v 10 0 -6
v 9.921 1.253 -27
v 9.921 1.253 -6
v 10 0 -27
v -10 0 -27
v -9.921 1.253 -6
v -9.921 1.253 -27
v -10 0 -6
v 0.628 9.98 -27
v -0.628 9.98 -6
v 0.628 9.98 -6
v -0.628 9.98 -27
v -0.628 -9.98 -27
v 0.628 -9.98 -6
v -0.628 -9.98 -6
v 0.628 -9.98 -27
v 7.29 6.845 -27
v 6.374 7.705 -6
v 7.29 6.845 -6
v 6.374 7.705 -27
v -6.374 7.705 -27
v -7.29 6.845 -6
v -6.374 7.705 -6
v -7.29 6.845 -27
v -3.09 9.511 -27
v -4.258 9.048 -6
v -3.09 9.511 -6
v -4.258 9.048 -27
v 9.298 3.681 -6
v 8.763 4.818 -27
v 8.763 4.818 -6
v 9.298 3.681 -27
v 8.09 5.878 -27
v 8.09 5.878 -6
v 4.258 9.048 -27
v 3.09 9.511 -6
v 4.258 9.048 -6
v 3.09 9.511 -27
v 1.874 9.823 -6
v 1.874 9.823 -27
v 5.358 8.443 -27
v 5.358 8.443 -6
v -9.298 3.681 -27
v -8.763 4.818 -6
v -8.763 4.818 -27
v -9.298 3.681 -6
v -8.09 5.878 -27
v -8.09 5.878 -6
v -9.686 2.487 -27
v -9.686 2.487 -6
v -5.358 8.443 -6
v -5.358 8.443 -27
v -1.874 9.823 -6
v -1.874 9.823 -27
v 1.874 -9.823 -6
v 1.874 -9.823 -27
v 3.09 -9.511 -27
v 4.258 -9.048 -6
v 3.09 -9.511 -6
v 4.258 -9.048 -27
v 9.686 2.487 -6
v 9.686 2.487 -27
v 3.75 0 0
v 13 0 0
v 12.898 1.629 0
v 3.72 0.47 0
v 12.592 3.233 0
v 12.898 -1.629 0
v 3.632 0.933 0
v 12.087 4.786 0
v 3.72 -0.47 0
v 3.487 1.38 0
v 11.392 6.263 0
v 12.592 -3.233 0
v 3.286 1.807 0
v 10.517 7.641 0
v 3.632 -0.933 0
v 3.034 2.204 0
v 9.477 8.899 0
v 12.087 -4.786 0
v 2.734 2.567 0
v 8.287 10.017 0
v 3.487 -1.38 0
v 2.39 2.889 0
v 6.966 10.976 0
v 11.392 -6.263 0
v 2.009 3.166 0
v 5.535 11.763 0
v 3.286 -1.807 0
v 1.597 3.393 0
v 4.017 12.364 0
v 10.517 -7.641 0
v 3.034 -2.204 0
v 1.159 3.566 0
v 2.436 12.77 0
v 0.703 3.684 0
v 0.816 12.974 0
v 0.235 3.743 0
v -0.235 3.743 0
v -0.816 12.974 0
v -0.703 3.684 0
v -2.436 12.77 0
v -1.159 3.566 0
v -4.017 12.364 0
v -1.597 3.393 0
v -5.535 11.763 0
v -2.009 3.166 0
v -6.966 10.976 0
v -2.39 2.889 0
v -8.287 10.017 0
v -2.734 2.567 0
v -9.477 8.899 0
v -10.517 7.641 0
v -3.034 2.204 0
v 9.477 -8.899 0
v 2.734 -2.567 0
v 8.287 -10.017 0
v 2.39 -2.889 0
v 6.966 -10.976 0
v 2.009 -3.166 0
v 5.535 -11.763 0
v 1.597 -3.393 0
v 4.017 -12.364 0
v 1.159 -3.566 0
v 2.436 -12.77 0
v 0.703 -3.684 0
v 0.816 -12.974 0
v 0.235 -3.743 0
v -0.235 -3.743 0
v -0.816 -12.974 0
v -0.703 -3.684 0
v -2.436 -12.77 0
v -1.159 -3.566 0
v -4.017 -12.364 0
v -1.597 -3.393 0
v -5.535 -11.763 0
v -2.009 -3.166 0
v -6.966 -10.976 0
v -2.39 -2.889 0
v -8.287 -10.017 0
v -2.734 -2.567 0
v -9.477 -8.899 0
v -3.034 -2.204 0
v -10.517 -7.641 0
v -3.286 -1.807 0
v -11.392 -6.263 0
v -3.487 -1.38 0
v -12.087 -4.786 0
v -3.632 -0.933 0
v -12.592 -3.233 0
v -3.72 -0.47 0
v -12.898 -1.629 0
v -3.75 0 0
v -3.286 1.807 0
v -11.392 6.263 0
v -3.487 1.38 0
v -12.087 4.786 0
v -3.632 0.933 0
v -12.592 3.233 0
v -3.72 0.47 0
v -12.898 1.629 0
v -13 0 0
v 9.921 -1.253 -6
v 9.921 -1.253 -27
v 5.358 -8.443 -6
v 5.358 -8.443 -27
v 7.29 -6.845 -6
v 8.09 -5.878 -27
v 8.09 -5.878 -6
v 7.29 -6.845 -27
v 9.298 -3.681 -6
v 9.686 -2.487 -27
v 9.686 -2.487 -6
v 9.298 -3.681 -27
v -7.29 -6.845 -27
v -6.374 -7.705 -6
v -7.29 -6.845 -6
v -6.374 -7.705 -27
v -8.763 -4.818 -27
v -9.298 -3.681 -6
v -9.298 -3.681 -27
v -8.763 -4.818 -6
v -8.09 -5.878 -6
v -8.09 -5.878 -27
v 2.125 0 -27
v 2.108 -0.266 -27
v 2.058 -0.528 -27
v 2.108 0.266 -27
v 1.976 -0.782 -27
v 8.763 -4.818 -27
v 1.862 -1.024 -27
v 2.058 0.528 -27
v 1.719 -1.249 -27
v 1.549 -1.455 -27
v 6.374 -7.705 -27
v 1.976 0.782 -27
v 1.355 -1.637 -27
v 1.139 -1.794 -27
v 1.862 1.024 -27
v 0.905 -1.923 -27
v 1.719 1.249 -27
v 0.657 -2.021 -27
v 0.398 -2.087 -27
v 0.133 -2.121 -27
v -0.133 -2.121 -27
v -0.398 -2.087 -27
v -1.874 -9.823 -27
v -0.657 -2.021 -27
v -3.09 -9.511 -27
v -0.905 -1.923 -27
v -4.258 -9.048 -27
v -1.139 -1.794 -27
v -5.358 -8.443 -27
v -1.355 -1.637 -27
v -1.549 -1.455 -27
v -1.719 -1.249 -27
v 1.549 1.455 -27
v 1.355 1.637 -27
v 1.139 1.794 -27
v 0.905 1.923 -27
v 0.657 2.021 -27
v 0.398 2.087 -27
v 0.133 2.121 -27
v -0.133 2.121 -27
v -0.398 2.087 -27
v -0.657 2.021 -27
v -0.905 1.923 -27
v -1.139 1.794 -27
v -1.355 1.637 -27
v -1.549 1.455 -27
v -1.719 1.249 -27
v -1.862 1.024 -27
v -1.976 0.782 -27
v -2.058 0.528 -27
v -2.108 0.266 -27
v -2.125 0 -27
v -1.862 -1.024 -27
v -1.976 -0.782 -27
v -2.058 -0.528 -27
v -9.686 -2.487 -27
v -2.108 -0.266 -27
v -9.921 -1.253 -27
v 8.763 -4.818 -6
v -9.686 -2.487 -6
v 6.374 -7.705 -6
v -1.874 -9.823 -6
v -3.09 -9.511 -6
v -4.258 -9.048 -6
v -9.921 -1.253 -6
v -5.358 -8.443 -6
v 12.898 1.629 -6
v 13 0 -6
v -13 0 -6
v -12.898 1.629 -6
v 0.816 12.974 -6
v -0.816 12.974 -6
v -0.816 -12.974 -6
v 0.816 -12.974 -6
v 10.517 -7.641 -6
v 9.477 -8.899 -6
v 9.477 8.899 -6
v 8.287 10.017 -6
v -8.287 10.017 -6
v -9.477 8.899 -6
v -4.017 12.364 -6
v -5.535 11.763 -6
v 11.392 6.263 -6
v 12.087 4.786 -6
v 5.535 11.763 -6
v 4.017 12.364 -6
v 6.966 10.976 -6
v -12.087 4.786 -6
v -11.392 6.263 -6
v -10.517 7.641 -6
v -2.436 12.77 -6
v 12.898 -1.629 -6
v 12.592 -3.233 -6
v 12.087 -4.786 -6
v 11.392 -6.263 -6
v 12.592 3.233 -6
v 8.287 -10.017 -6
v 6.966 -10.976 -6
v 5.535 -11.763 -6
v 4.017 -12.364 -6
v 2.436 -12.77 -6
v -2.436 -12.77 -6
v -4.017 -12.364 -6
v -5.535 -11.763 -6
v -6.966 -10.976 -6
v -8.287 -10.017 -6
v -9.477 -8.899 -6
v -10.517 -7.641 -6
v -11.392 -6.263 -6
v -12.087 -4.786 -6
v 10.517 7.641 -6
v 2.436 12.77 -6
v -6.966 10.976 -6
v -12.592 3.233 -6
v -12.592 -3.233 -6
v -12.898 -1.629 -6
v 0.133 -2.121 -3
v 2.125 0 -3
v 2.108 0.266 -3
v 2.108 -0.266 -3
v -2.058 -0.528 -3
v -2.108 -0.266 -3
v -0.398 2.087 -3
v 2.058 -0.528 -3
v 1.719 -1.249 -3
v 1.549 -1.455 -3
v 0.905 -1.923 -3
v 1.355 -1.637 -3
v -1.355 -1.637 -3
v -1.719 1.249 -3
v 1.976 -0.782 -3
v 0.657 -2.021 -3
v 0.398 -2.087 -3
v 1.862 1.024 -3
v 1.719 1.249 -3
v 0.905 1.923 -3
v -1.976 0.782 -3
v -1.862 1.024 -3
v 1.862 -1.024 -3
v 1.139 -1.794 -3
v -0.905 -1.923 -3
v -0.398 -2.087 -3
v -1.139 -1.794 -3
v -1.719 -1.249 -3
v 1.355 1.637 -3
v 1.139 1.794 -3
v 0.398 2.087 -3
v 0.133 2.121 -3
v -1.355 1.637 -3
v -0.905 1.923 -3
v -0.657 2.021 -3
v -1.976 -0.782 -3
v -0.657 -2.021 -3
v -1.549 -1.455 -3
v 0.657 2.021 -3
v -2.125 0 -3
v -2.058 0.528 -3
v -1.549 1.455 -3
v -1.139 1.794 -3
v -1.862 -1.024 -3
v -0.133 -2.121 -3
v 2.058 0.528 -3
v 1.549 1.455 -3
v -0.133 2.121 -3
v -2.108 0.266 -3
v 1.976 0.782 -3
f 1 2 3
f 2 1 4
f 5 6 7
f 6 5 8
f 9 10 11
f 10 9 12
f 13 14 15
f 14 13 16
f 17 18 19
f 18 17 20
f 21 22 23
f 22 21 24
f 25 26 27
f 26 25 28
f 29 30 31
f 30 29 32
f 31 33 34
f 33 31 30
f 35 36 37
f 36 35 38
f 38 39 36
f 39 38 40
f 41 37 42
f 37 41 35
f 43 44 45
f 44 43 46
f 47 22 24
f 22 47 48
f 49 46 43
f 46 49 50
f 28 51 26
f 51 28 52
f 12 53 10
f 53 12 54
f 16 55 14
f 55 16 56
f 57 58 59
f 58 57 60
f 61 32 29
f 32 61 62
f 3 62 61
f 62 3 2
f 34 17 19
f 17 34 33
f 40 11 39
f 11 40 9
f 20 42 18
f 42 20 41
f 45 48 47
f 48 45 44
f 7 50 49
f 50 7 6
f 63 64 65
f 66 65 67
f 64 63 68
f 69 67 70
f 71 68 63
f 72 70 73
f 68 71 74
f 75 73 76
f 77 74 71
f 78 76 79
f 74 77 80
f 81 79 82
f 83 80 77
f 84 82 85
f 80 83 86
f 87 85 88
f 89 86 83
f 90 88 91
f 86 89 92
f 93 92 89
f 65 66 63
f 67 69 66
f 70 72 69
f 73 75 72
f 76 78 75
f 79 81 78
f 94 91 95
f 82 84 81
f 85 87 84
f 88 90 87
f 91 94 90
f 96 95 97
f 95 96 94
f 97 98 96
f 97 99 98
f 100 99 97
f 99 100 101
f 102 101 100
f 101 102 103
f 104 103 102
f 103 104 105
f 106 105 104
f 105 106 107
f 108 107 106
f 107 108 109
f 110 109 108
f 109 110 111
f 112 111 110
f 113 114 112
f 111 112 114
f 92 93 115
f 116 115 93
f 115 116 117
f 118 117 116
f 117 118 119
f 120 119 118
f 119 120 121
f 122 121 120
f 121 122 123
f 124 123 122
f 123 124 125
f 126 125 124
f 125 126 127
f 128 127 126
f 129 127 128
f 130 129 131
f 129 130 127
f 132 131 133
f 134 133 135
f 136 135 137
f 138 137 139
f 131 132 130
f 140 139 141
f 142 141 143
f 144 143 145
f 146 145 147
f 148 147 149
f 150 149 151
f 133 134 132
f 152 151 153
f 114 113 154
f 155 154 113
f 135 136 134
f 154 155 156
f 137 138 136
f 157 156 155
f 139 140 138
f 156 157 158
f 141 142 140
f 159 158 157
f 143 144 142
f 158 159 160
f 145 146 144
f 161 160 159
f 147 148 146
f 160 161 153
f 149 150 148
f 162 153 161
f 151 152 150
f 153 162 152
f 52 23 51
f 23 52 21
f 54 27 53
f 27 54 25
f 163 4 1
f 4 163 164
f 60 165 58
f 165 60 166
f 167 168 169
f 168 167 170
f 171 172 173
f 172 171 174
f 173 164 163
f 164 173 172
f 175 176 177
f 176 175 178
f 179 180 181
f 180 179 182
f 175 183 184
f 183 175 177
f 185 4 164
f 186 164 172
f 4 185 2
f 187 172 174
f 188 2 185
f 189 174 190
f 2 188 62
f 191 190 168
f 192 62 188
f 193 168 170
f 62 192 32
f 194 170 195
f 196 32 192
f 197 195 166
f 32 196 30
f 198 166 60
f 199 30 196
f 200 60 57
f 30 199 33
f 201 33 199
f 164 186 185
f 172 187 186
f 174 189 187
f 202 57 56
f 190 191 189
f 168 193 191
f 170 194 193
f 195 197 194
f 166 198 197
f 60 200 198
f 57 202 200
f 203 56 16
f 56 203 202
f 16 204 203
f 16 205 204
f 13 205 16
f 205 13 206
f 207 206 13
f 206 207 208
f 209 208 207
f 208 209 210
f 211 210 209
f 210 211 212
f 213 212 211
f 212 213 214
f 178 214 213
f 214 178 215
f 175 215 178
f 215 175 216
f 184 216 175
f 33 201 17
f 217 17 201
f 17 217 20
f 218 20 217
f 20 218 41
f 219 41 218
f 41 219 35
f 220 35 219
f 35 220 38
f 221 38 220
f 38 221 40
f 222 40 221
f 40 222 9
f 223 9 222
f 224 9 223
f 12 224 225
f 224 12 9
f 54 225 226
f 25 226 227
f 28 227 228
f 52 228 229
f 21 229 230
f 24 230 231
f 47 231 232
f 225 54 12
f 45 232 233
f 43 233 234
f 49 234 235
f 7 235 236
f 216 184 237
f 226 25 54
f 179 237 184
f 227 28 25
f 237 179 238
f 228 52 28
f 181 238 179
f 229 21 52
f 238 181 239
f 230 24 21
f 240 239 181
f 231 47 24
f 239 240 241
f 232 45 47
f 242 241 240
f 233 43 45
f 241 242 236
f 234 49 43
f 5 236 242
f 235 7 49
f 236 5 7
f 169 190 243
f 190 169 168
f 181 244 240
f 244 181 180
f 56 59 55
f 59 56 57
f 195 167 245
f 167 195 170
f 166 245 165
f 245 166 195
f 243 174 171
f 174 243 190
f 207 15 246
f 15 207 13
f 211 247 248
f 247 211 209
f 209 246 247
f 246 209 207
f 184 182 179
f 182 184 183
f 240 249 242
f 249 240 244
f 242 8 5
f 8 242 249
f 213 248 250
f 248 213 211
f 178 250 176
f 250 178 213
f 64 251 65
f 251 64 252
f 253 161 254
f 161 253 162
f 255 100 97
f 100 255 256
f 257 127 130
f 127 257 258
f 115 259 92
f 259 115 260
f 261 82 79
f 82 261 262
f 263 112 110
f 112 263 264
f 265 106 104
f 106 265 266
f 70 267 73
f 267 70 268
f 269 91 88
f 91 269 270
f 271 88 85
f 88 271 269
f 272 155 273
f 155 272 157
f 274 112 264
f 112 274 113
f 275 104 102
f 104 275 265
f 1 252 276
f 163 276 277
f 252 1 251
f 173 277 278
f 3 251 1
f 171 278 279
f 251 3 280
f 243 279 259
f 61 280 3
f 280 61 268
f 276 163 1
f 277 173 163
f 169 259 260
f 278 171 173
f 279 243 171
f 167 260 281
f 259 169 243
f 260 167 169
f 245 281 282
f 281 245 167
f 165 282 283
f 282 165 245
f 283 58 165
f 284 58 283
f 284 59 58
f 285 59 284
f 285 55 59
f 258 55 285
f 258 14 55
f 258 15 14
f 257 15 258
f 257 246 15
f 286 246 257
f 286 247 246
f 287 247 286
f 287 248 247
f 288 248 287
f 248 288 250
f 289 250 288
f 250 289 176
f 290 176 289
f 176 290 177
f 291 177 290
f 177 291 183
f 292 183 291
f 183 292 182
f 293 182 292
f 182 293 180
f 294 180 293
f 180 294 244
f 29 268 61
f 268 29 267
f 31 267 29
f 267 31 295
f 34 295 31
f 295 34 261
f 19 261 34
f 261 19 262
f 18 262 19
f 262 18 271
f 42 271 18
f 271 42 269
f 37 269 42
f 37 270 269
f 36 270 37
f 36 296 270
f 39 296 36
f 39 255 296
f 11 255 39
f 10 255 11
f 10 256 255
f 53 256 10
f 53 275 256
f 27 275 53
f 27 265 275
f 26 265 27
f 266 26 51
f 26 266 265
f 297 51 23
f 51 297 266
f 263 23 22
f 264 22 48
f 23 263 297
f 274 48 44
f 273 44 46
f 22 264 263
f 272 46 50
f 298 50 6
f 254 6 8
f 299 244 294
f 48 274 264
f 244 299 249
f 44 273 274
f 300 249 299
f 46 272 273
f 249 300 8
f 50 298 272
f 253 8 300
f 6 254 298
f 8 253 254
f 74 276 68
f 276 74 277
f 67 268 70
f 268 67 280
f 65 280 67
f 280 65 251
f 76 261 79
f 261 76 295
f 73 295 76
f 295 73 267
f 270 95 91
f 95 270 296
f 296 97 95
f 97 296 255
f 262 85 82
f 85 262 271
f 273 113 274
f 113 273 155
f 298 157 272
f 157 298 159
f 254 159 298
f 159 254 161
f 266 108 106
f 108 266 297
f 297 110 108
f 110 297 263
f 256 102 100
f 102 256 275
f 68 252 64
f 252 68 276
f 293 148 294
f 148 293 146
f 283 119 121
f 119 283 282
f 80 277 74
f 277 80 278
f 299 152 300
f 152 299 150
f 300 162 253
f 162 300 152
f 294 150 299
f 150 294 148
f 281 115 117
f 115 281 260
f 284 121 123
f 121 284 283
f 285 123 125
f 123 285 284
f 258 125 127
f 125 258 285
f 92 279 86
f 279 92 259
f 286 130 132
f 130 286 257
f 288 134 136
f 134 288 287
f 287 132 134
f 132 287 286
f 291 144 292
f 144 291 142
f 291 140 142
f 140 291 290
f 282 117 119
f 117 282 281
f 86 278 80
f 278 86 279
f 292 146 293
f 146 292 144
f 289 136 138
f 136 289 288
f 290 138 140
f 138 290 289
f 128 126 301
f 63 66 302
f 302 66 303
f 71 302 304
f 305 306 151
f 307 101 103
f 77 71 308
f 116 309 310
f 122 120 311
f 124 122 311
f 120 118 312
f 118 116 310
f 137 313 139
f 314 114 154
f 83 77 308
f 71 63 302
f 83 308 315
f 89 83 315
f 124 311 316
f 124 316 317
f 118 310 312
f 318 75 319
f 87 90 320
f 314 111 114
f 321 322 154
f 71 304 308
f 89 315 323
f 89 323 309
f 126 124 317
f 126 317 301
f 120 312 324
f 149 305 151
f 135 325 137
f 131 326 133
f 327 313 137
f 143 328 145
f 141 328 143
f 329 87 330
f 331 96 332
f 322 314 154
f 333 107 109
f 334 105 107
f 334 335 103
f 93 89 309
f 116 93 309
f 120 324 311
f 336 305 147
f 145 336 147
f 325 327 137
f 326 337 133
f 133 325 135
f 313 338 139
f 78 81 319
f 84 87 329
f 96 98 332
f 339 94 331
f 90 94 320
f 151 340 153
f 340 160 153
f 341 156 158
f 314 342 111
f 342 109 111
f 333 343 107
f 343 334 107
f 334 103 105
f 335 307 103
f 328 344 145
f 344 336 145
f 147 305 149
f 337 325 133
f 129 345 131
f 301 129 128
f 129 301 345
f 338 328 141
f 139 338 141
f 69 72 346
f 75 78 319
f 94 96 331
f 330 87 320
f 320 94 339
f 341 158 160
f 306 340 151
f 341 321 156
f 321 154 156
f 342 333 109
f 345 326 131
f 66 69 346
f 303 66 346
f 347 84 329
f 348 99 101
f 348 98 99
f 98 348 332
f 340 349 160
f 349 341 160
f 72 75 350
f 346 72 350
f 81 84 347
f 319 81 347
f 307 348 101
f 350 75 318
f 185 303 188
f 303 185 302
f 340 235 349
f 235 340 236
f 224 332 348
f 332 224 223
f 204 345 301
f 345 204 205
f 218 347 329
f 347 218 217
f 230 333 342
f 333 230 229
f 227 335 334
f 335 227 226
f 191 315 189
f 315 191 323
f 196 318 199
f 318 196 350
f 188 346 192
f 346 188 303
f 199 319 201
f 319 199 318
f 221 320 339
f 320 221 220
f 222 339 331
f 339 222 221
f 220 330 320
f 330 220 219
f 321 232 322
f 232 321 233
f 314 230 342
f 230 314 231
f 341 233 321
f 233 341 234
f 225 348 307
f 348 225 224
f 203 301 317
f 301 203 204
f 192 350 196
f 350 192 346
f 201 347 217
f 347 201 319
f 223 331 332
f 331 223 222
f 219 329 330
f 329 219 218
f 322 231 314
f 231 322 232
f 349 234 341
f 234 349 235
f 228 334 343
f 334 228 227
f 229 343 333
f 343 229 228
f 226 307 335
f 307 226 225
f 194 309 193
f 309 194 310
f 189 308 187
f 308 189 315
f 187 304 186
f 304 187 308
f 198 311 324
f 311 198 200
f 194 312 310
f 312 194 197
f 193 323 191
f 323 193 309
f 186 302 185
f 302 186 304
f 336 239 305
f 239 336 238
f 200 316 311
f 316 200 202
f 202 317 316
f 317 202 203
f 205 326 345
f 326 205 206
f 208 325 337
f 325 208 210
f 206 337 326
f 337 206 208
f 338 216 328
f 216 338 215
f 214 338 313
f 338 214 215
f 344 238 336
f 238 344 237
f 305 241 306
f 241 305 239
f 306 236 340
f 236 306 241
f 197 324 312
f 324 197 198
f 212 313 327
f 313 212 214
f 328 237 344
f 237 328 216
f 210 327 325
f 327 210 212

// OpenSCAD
$fn = 50;


difference() {
	union() {
		translate(v = [0, 0, -27.0000000000]) {
			cylinder(h = 27, r = 10.0000000000);
		}
		translate(v = [0, 0, -6.0000000000]) {
			cylinder(h = 6, r = 13.0000000000);
		}
	}
	union() {
		translate(v = [0, 0, 0]) {
			rotate(a = [0, 0, 0]) {
				difference() {
					union() {
						#translate(v = [0, 0, -27.0000000000]) {
							cylinder(h = 27, r = 2.0000000000);
						}
						#translate(v = [0, 0, -3]) {
							cylinder(h = 3, r1 = 2.1250000000, r2 = 3.7500000000);
						}
						#translate(v = [0, 0, -27.0000000000]) {
							cylinder(h = 27, r = 2.1250000000);
						}
						#translate(v = [0, 0, -27.0000000000]) {
							cylinder(h = 27, r = 2.0000000000);
						}
					}
					union();
				}
			}
		}
	}
}
